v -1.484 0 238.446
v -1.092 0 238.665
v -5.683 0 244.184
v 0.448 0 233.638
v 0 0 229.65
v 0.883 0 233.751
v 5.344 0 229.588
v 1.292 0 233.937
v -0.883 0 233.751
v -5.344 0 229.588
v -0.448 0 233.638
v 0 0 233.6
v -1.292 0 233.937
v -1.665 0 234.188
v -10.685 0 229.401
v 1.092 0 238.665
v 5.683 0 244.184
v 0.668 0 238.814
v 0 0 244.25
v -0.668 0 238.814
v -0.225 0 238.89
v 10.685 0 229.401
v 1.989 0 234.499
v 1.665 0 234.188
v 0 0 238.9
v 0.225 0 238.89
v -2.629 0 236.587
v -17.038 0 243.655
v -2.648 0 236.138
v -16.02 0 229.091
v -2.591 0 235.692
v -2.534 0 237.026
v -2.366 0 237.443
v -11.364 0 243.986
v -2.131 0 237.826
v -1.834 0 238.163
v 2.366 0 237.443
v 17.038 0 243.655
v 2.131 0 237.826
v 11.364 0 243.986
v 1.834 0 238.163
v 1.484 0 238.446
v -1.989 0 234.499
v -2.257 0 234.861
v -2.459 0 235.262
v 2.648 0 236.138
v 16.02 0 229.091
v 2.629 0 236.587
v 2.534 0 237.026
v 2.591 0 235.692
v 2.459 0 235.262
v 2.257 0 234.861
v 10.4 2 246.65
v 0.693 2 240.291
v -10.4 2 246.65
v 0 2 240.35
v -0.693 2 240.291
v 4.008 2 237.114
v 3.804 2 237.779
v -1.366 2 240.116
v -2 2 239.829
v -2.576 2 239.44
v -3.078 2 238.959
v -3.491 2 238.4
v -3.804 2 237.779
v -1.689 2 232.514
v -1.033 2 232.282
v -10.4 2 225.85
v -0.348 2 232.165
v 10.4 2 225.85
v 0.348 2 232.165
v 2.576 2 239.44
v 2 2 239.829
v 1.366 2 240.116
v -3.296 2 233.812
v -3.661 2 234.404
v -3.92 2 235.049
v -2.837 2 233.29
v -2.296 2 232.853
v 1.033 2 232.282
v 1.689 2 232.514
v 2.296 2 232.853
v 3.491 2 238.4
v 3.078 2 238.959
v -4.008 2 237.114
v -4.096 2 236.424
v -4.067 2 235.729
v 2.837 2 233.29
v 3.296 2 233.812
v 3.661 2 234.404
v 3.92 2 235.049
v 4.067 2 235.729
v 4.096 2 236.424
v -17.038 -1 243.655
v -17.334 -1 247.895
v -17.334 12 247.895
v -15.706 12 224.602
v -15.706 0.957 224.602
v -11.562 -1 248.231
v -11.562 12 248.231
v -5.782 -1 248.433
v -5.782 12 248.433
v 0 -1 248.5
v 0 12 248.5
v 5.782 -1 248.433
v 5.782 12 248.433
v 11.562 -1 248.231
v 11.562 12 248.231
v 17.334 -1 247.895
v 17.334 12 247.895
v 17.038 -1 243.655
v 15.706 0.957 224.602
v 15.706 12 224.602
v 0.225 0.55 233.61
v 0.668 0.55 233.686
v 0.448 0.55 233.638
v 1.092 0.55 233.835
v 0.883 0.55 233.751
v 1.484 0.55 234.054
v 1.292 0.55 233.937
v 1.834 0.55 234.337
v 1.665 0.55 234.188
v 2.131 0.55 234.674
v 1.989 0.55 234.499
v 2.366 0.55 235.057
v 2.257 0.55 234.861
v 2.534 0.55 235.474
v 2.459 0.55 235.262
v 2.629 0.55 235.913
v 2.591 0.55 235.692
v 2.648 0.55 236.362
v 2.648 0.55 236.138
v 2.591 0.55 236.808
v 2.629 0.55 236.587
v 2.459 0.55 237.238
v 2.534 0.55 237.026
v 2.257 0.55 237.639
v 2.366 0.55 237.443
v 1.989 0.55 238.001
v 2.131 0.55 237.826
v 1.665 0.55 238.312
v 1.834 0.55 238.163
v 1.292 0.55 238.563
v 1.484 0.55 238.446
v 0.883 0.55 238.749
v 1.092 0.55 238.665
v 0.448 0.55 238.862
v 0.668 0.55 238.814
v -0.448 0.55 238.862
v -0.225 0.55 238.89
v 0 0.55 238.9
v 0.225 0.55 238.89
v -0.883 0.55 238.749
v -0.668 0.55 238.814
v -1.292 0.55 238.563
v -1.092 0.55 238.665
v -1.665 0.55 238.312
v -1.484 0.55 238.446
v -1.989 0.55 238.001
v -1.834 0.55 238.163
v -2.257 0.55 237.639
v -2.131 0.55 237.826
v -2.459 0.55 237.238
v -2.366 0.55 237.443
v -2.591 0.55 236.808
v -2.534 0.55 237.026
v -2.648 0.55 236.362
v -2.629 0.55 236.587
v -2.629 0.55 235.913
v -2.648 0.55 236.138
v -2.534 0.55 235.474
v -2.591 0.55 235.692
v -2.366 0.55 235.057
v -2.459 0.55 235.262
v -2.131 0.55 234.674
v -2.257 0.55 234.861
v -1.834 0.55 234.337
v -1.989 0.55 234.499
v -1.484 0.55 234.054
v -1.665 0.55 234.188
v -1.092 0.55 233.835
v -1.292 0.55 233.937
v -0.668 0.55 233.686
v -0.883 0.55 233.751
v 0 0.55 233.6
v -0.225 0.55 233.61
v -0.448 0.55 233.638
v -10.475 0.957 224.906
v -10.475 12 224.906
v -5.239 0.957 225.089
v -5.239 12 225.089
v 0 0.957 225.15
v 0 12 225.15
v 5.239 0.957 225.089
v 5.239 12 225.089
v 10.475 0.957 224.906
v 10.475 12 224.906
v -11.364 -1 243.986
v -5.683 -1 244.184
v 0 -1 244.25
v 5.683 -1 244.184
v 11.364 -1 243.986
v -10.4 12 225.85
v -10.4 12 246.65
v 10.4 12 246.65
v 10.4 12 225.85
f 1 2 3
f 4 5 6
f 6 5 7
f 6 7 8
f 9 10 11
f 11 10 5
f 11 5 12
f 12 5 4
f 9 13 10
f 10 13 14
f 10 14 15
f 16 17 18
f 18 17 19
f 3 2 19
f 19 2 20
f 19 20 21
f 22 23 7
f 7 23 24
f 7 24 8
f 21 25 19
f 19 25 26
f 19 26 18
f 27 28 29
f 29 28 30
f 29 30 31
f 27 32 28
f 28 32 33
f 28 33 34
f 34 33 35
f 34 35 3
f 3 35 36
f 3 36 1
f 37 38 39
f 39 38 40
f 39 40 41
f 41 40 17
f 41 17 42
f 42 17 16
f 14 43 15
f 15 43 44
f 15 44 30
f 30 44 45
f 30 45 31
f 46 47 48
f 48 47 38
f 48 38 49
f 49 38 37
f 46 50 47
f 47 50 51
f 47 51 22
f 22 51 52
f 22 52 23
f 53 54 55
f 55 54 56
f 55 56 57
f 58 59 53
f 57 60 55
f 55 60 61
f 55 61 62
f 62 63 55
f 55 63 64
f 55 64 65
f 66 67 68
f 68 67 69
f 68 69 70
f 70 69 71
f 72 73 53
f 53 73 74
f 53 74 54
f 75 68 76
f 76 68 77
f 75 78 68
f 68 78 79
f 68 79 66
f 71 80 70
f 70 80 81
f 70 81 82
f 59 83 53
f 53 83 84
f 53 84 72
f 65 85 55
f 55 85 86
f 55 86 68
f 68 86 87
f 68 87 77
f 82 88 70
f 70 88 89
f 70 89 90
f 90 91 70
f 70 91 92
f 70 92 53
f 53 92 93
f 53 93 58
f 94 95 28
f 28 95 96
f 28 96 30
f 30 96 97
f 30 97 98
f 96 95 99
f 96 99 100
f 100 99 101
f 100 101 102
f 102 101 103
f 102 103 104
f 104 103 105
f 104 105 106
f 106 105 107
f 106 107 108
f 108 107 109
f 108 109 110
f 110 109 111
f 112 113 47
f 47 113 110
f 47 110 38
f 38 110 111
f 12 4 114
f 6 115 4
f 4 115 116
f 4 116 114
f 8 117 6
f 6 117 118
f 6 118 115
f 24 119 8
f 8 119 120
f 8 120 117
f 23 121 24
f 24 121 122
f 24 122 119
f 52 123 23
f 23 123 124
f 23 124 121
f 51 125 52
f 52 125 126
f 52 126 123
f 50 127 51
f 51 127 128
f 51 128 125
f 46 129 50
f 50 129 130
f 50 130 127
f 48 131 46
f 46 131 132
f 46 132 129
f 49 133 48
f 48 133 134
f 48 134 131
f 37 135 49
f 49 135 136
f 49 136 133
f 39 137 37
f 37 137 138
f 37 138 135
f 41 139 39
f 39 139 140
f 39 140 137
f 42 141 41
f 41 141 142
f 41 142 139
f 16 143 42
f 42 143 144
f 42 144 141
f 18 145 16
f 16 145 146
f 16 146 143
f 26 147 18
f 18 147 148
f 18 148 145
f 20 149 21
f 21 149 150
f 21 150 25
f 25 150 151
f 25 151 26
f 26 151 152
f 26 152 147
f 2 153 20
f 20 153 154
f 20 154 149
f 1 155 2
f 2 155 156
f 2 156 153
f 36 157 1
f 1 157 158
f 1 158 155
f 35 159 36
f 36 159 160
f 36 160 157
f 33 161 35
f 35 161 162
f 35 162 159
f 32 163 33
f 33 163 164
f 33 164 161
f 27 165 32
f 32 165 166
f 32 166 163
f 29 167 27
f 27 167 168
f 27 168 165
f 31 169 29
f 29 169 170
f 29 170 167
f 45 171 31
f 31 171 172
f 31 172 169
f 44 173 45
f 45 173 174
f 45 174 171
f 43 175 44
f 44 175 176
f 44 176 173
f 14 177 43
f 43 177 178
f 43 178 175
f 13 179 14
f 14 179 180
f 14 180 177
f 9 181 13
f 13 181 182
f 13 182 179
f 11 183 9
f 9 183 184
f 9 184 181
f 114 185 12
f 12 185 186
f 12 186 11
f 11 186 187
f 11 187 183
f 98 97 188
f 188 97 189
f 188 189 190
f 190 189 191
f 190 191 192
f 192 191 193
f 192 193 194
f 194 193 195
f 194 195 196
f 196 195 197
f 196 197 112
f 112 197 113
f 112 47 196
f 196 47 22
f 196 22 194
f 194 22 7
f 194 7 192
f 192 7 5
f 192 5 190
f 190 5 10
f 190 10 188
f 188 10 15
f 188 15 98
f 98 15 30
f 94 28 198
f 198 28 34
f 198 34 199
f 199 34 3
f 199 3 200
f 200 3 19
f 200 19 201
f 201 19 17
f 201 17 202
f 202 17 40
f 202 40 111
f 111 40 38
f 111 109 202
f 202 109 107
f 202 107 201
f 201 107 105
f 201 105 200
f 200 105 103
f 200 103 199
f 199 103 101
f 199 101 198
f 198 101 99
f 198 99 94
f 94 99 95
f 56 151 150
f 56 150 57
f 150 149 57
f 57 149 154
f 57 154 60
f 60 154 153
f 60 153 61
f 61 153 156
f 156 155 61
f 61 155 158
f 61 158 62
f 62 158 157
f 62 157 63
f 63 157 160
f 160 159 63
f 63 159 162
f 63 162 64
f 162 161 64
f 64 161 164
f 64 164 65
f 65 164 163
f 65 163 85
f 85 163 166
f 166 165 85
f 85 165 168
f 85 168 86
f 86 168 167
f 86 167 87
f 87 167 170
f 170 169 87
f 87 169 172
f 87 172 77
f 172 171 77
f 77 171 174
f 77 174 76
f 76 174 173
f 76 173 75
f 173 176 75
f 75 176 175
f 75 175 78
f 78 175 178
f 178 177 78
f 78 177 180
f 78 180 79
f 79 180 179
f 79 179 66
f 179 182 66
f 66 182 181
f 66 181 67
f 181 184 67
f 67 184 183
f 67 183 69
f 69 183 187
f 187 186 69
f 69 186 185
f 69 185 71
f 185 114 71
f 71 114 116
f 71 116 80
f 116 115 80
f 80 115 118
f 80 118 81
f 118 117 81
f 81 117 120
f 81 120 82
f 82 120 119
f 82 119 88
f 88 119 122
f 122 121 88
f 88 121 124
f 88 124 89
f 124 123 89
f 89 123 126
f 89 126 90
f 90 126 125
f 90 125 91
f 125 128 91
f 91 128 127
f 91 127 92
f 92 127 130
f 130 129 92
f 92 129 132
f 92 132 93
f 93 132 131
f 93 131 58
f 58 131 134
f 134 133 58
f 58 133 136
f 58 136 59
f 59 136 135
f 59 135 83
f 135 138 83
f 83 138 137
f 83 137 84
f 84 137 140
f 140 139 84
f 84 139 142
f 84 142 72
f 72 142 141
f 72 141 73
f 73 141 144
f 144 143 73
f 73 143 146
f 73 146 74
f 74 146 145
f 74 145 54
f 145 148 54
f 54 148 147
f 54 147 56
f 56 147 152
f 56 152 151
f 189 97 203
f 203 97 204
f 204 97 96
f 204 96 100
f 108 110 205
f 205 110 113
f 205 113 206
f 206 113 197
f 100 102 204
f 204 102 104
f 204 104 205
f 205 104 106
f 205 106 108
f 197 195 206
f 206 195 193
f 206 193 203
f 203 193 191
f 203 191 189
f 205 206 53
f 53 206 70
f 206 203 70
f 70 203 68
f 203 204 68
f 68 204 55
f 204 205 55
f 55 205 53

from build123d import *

# Parameters (mm, degrees)
SKETCH2_R           = 2.65
BOSS_EXTRUDE1_DEPTH = 2
BOSS_EXTRUDE2_DEPTH = 2
CHAMFER1_SIZE       = 4.5
CHAMFER1_SIZE2      = 0.956504528
BOSS_EXTRUDE3_START = 1
BOSS_EXTRUDE3_DEPTH = 1
SKETCH21_W          = 20.8
SKETCH21_H          = 20.8
BOSS_EXTRUDE4_DEPTH = 10


with BuildPart() as part:
    # Sketch2 → Boss-Extrude1 (new body)
    with BuildSketch(Plane(origin=(0, 0, 0), x_dir=(1, 0, 0), z_dir=(0, 1, 0))):
        with BuildLine():
            Line((-15.984695958, -228.591802117), (-17.334483725, -247.89466649))
            ThreePointArc((-17.334483725, -247.89466649), (0, -248.5), (17.334483725, -247.89466649))
            Line((17.334483725, -247.89466649), (15.984695958, -228.591802117))
            ThreePointArc((15.984695958, -228.591802117), (0, -229.15), (-15.984695958, -228.591802117))
        make_face()
        with Locations(Location((0, -236.25, 0), (0, 0, 270))):
            Circle(SKETCH2_R, mode=Mode.SUBTRACT)
    extrude(amount=BOSS_EXTRUDE1_DEPTH)

    # Sketch3 → Boss-Extrude2 (add)
    with BuildSketch(Plane(origin=(0, 0, 0), x_dir=(1, 0, 0), z_dir=(0, 1, 0))):
        with BuildLine():
            Line((-15.705670063, -224.601545916), (-15.984695958, -228.591802117))
            ThreePointArc((-15.984695958, -228.591802117), (0, -229.15), (15.984695958, -228.591802117))
            Line((15.984695958, -228.591802117), (15.705670063, -224.601545916))
            ThreePointArc((15.705670063, -224.601545916), (0, -225.15), (-15.705670063, -224.601545916))
        make_face()
    extrude(amount=BOSS_EXTRUDE2_DEPTH)

    # Chamfer1
    chamfer1_edges = [part.edges().sort_by_distance(p)[0] for p in [
        (0, 0, 225.15),
    ]]
    chamfer1_side = [part.faces().sort_by_distance(p)[0] for p in [
        (16.100023839, 0, 236.277479174),
    ]]
    chamfer(chamfer1_edges, length=CHAMFER1_SIZE, length2=CHAMFER1_SIZE2, reference=chamfer1_side[0])

    # Sketch4 → Boss-Extrude3 (add)
    with BuildSketch(Plane.XZ.offset(BOSS_EXTRUDE3_START)):
        with BuildLine():
            Line((-17.334483725, 247.89466649), (-17.038018712, 243.655019276))
            ThreePointArc((-17.038018712, 243.655019276), (0, 244.25), (17.038018712, 243.655019276))
            Line((17.038018712, 243.655019276), (17.334483725, 247.89466649))
            ThreePointArc((17.334483725, 247.89466649), (0, 248.5), (-17.334483725, 247.89466649))
        make_face()
    extrude(amount=-BOSS_EXTRUDE3_DEPTH)

    # Sketch20 → CSK for M3.5 Flat Head Machine Screw2 (revolve, cut)
    with BuildSketch(Plane(origin=(0, 2, 236.25), x_dir=(0, 0, 1), z_dir=(1, 0, 0))):
        Polygon((0, 0), (0, 3), (1.85, 3), (1.85, 2.25), (4.1, 0), align=None)
    revolve(axis=Axis((0, 8.35, 236.25), (0, -1, 0)), mode=Mode.SUBTRACT)

    # Sketch21 → Boss-Extrude4 (add)
    with BuildSketch(Plane(origin=(0, 2, 0), x_dir=(1, 0, 0), z_dir=(0, 1, 0))):
        with BuildLine():
            Line((17.334483725, -247.89466649), (15.705670063, -224.601545916))
            ThreePointArc((15.705670063, -224.601545916), (0, -225.15), (-15.705670063, -224.601545916))
            Line((-15.705670063, -224.601545916), (-17.334483725, -247.89466649))
            ThreePointArc((-17.334483725, -247.89466649), (0, -248.5), (17.334483725, -247.89466649))
        make_face()
        with Locations((0, -236.25)):
            Rectangle(SKETCH21_W, SKETCH21_H, mode=Mode.SUBTRACT)
    extrude(amount=BOSS_EXTRUDE4_DEPTH)


solid = part.part
